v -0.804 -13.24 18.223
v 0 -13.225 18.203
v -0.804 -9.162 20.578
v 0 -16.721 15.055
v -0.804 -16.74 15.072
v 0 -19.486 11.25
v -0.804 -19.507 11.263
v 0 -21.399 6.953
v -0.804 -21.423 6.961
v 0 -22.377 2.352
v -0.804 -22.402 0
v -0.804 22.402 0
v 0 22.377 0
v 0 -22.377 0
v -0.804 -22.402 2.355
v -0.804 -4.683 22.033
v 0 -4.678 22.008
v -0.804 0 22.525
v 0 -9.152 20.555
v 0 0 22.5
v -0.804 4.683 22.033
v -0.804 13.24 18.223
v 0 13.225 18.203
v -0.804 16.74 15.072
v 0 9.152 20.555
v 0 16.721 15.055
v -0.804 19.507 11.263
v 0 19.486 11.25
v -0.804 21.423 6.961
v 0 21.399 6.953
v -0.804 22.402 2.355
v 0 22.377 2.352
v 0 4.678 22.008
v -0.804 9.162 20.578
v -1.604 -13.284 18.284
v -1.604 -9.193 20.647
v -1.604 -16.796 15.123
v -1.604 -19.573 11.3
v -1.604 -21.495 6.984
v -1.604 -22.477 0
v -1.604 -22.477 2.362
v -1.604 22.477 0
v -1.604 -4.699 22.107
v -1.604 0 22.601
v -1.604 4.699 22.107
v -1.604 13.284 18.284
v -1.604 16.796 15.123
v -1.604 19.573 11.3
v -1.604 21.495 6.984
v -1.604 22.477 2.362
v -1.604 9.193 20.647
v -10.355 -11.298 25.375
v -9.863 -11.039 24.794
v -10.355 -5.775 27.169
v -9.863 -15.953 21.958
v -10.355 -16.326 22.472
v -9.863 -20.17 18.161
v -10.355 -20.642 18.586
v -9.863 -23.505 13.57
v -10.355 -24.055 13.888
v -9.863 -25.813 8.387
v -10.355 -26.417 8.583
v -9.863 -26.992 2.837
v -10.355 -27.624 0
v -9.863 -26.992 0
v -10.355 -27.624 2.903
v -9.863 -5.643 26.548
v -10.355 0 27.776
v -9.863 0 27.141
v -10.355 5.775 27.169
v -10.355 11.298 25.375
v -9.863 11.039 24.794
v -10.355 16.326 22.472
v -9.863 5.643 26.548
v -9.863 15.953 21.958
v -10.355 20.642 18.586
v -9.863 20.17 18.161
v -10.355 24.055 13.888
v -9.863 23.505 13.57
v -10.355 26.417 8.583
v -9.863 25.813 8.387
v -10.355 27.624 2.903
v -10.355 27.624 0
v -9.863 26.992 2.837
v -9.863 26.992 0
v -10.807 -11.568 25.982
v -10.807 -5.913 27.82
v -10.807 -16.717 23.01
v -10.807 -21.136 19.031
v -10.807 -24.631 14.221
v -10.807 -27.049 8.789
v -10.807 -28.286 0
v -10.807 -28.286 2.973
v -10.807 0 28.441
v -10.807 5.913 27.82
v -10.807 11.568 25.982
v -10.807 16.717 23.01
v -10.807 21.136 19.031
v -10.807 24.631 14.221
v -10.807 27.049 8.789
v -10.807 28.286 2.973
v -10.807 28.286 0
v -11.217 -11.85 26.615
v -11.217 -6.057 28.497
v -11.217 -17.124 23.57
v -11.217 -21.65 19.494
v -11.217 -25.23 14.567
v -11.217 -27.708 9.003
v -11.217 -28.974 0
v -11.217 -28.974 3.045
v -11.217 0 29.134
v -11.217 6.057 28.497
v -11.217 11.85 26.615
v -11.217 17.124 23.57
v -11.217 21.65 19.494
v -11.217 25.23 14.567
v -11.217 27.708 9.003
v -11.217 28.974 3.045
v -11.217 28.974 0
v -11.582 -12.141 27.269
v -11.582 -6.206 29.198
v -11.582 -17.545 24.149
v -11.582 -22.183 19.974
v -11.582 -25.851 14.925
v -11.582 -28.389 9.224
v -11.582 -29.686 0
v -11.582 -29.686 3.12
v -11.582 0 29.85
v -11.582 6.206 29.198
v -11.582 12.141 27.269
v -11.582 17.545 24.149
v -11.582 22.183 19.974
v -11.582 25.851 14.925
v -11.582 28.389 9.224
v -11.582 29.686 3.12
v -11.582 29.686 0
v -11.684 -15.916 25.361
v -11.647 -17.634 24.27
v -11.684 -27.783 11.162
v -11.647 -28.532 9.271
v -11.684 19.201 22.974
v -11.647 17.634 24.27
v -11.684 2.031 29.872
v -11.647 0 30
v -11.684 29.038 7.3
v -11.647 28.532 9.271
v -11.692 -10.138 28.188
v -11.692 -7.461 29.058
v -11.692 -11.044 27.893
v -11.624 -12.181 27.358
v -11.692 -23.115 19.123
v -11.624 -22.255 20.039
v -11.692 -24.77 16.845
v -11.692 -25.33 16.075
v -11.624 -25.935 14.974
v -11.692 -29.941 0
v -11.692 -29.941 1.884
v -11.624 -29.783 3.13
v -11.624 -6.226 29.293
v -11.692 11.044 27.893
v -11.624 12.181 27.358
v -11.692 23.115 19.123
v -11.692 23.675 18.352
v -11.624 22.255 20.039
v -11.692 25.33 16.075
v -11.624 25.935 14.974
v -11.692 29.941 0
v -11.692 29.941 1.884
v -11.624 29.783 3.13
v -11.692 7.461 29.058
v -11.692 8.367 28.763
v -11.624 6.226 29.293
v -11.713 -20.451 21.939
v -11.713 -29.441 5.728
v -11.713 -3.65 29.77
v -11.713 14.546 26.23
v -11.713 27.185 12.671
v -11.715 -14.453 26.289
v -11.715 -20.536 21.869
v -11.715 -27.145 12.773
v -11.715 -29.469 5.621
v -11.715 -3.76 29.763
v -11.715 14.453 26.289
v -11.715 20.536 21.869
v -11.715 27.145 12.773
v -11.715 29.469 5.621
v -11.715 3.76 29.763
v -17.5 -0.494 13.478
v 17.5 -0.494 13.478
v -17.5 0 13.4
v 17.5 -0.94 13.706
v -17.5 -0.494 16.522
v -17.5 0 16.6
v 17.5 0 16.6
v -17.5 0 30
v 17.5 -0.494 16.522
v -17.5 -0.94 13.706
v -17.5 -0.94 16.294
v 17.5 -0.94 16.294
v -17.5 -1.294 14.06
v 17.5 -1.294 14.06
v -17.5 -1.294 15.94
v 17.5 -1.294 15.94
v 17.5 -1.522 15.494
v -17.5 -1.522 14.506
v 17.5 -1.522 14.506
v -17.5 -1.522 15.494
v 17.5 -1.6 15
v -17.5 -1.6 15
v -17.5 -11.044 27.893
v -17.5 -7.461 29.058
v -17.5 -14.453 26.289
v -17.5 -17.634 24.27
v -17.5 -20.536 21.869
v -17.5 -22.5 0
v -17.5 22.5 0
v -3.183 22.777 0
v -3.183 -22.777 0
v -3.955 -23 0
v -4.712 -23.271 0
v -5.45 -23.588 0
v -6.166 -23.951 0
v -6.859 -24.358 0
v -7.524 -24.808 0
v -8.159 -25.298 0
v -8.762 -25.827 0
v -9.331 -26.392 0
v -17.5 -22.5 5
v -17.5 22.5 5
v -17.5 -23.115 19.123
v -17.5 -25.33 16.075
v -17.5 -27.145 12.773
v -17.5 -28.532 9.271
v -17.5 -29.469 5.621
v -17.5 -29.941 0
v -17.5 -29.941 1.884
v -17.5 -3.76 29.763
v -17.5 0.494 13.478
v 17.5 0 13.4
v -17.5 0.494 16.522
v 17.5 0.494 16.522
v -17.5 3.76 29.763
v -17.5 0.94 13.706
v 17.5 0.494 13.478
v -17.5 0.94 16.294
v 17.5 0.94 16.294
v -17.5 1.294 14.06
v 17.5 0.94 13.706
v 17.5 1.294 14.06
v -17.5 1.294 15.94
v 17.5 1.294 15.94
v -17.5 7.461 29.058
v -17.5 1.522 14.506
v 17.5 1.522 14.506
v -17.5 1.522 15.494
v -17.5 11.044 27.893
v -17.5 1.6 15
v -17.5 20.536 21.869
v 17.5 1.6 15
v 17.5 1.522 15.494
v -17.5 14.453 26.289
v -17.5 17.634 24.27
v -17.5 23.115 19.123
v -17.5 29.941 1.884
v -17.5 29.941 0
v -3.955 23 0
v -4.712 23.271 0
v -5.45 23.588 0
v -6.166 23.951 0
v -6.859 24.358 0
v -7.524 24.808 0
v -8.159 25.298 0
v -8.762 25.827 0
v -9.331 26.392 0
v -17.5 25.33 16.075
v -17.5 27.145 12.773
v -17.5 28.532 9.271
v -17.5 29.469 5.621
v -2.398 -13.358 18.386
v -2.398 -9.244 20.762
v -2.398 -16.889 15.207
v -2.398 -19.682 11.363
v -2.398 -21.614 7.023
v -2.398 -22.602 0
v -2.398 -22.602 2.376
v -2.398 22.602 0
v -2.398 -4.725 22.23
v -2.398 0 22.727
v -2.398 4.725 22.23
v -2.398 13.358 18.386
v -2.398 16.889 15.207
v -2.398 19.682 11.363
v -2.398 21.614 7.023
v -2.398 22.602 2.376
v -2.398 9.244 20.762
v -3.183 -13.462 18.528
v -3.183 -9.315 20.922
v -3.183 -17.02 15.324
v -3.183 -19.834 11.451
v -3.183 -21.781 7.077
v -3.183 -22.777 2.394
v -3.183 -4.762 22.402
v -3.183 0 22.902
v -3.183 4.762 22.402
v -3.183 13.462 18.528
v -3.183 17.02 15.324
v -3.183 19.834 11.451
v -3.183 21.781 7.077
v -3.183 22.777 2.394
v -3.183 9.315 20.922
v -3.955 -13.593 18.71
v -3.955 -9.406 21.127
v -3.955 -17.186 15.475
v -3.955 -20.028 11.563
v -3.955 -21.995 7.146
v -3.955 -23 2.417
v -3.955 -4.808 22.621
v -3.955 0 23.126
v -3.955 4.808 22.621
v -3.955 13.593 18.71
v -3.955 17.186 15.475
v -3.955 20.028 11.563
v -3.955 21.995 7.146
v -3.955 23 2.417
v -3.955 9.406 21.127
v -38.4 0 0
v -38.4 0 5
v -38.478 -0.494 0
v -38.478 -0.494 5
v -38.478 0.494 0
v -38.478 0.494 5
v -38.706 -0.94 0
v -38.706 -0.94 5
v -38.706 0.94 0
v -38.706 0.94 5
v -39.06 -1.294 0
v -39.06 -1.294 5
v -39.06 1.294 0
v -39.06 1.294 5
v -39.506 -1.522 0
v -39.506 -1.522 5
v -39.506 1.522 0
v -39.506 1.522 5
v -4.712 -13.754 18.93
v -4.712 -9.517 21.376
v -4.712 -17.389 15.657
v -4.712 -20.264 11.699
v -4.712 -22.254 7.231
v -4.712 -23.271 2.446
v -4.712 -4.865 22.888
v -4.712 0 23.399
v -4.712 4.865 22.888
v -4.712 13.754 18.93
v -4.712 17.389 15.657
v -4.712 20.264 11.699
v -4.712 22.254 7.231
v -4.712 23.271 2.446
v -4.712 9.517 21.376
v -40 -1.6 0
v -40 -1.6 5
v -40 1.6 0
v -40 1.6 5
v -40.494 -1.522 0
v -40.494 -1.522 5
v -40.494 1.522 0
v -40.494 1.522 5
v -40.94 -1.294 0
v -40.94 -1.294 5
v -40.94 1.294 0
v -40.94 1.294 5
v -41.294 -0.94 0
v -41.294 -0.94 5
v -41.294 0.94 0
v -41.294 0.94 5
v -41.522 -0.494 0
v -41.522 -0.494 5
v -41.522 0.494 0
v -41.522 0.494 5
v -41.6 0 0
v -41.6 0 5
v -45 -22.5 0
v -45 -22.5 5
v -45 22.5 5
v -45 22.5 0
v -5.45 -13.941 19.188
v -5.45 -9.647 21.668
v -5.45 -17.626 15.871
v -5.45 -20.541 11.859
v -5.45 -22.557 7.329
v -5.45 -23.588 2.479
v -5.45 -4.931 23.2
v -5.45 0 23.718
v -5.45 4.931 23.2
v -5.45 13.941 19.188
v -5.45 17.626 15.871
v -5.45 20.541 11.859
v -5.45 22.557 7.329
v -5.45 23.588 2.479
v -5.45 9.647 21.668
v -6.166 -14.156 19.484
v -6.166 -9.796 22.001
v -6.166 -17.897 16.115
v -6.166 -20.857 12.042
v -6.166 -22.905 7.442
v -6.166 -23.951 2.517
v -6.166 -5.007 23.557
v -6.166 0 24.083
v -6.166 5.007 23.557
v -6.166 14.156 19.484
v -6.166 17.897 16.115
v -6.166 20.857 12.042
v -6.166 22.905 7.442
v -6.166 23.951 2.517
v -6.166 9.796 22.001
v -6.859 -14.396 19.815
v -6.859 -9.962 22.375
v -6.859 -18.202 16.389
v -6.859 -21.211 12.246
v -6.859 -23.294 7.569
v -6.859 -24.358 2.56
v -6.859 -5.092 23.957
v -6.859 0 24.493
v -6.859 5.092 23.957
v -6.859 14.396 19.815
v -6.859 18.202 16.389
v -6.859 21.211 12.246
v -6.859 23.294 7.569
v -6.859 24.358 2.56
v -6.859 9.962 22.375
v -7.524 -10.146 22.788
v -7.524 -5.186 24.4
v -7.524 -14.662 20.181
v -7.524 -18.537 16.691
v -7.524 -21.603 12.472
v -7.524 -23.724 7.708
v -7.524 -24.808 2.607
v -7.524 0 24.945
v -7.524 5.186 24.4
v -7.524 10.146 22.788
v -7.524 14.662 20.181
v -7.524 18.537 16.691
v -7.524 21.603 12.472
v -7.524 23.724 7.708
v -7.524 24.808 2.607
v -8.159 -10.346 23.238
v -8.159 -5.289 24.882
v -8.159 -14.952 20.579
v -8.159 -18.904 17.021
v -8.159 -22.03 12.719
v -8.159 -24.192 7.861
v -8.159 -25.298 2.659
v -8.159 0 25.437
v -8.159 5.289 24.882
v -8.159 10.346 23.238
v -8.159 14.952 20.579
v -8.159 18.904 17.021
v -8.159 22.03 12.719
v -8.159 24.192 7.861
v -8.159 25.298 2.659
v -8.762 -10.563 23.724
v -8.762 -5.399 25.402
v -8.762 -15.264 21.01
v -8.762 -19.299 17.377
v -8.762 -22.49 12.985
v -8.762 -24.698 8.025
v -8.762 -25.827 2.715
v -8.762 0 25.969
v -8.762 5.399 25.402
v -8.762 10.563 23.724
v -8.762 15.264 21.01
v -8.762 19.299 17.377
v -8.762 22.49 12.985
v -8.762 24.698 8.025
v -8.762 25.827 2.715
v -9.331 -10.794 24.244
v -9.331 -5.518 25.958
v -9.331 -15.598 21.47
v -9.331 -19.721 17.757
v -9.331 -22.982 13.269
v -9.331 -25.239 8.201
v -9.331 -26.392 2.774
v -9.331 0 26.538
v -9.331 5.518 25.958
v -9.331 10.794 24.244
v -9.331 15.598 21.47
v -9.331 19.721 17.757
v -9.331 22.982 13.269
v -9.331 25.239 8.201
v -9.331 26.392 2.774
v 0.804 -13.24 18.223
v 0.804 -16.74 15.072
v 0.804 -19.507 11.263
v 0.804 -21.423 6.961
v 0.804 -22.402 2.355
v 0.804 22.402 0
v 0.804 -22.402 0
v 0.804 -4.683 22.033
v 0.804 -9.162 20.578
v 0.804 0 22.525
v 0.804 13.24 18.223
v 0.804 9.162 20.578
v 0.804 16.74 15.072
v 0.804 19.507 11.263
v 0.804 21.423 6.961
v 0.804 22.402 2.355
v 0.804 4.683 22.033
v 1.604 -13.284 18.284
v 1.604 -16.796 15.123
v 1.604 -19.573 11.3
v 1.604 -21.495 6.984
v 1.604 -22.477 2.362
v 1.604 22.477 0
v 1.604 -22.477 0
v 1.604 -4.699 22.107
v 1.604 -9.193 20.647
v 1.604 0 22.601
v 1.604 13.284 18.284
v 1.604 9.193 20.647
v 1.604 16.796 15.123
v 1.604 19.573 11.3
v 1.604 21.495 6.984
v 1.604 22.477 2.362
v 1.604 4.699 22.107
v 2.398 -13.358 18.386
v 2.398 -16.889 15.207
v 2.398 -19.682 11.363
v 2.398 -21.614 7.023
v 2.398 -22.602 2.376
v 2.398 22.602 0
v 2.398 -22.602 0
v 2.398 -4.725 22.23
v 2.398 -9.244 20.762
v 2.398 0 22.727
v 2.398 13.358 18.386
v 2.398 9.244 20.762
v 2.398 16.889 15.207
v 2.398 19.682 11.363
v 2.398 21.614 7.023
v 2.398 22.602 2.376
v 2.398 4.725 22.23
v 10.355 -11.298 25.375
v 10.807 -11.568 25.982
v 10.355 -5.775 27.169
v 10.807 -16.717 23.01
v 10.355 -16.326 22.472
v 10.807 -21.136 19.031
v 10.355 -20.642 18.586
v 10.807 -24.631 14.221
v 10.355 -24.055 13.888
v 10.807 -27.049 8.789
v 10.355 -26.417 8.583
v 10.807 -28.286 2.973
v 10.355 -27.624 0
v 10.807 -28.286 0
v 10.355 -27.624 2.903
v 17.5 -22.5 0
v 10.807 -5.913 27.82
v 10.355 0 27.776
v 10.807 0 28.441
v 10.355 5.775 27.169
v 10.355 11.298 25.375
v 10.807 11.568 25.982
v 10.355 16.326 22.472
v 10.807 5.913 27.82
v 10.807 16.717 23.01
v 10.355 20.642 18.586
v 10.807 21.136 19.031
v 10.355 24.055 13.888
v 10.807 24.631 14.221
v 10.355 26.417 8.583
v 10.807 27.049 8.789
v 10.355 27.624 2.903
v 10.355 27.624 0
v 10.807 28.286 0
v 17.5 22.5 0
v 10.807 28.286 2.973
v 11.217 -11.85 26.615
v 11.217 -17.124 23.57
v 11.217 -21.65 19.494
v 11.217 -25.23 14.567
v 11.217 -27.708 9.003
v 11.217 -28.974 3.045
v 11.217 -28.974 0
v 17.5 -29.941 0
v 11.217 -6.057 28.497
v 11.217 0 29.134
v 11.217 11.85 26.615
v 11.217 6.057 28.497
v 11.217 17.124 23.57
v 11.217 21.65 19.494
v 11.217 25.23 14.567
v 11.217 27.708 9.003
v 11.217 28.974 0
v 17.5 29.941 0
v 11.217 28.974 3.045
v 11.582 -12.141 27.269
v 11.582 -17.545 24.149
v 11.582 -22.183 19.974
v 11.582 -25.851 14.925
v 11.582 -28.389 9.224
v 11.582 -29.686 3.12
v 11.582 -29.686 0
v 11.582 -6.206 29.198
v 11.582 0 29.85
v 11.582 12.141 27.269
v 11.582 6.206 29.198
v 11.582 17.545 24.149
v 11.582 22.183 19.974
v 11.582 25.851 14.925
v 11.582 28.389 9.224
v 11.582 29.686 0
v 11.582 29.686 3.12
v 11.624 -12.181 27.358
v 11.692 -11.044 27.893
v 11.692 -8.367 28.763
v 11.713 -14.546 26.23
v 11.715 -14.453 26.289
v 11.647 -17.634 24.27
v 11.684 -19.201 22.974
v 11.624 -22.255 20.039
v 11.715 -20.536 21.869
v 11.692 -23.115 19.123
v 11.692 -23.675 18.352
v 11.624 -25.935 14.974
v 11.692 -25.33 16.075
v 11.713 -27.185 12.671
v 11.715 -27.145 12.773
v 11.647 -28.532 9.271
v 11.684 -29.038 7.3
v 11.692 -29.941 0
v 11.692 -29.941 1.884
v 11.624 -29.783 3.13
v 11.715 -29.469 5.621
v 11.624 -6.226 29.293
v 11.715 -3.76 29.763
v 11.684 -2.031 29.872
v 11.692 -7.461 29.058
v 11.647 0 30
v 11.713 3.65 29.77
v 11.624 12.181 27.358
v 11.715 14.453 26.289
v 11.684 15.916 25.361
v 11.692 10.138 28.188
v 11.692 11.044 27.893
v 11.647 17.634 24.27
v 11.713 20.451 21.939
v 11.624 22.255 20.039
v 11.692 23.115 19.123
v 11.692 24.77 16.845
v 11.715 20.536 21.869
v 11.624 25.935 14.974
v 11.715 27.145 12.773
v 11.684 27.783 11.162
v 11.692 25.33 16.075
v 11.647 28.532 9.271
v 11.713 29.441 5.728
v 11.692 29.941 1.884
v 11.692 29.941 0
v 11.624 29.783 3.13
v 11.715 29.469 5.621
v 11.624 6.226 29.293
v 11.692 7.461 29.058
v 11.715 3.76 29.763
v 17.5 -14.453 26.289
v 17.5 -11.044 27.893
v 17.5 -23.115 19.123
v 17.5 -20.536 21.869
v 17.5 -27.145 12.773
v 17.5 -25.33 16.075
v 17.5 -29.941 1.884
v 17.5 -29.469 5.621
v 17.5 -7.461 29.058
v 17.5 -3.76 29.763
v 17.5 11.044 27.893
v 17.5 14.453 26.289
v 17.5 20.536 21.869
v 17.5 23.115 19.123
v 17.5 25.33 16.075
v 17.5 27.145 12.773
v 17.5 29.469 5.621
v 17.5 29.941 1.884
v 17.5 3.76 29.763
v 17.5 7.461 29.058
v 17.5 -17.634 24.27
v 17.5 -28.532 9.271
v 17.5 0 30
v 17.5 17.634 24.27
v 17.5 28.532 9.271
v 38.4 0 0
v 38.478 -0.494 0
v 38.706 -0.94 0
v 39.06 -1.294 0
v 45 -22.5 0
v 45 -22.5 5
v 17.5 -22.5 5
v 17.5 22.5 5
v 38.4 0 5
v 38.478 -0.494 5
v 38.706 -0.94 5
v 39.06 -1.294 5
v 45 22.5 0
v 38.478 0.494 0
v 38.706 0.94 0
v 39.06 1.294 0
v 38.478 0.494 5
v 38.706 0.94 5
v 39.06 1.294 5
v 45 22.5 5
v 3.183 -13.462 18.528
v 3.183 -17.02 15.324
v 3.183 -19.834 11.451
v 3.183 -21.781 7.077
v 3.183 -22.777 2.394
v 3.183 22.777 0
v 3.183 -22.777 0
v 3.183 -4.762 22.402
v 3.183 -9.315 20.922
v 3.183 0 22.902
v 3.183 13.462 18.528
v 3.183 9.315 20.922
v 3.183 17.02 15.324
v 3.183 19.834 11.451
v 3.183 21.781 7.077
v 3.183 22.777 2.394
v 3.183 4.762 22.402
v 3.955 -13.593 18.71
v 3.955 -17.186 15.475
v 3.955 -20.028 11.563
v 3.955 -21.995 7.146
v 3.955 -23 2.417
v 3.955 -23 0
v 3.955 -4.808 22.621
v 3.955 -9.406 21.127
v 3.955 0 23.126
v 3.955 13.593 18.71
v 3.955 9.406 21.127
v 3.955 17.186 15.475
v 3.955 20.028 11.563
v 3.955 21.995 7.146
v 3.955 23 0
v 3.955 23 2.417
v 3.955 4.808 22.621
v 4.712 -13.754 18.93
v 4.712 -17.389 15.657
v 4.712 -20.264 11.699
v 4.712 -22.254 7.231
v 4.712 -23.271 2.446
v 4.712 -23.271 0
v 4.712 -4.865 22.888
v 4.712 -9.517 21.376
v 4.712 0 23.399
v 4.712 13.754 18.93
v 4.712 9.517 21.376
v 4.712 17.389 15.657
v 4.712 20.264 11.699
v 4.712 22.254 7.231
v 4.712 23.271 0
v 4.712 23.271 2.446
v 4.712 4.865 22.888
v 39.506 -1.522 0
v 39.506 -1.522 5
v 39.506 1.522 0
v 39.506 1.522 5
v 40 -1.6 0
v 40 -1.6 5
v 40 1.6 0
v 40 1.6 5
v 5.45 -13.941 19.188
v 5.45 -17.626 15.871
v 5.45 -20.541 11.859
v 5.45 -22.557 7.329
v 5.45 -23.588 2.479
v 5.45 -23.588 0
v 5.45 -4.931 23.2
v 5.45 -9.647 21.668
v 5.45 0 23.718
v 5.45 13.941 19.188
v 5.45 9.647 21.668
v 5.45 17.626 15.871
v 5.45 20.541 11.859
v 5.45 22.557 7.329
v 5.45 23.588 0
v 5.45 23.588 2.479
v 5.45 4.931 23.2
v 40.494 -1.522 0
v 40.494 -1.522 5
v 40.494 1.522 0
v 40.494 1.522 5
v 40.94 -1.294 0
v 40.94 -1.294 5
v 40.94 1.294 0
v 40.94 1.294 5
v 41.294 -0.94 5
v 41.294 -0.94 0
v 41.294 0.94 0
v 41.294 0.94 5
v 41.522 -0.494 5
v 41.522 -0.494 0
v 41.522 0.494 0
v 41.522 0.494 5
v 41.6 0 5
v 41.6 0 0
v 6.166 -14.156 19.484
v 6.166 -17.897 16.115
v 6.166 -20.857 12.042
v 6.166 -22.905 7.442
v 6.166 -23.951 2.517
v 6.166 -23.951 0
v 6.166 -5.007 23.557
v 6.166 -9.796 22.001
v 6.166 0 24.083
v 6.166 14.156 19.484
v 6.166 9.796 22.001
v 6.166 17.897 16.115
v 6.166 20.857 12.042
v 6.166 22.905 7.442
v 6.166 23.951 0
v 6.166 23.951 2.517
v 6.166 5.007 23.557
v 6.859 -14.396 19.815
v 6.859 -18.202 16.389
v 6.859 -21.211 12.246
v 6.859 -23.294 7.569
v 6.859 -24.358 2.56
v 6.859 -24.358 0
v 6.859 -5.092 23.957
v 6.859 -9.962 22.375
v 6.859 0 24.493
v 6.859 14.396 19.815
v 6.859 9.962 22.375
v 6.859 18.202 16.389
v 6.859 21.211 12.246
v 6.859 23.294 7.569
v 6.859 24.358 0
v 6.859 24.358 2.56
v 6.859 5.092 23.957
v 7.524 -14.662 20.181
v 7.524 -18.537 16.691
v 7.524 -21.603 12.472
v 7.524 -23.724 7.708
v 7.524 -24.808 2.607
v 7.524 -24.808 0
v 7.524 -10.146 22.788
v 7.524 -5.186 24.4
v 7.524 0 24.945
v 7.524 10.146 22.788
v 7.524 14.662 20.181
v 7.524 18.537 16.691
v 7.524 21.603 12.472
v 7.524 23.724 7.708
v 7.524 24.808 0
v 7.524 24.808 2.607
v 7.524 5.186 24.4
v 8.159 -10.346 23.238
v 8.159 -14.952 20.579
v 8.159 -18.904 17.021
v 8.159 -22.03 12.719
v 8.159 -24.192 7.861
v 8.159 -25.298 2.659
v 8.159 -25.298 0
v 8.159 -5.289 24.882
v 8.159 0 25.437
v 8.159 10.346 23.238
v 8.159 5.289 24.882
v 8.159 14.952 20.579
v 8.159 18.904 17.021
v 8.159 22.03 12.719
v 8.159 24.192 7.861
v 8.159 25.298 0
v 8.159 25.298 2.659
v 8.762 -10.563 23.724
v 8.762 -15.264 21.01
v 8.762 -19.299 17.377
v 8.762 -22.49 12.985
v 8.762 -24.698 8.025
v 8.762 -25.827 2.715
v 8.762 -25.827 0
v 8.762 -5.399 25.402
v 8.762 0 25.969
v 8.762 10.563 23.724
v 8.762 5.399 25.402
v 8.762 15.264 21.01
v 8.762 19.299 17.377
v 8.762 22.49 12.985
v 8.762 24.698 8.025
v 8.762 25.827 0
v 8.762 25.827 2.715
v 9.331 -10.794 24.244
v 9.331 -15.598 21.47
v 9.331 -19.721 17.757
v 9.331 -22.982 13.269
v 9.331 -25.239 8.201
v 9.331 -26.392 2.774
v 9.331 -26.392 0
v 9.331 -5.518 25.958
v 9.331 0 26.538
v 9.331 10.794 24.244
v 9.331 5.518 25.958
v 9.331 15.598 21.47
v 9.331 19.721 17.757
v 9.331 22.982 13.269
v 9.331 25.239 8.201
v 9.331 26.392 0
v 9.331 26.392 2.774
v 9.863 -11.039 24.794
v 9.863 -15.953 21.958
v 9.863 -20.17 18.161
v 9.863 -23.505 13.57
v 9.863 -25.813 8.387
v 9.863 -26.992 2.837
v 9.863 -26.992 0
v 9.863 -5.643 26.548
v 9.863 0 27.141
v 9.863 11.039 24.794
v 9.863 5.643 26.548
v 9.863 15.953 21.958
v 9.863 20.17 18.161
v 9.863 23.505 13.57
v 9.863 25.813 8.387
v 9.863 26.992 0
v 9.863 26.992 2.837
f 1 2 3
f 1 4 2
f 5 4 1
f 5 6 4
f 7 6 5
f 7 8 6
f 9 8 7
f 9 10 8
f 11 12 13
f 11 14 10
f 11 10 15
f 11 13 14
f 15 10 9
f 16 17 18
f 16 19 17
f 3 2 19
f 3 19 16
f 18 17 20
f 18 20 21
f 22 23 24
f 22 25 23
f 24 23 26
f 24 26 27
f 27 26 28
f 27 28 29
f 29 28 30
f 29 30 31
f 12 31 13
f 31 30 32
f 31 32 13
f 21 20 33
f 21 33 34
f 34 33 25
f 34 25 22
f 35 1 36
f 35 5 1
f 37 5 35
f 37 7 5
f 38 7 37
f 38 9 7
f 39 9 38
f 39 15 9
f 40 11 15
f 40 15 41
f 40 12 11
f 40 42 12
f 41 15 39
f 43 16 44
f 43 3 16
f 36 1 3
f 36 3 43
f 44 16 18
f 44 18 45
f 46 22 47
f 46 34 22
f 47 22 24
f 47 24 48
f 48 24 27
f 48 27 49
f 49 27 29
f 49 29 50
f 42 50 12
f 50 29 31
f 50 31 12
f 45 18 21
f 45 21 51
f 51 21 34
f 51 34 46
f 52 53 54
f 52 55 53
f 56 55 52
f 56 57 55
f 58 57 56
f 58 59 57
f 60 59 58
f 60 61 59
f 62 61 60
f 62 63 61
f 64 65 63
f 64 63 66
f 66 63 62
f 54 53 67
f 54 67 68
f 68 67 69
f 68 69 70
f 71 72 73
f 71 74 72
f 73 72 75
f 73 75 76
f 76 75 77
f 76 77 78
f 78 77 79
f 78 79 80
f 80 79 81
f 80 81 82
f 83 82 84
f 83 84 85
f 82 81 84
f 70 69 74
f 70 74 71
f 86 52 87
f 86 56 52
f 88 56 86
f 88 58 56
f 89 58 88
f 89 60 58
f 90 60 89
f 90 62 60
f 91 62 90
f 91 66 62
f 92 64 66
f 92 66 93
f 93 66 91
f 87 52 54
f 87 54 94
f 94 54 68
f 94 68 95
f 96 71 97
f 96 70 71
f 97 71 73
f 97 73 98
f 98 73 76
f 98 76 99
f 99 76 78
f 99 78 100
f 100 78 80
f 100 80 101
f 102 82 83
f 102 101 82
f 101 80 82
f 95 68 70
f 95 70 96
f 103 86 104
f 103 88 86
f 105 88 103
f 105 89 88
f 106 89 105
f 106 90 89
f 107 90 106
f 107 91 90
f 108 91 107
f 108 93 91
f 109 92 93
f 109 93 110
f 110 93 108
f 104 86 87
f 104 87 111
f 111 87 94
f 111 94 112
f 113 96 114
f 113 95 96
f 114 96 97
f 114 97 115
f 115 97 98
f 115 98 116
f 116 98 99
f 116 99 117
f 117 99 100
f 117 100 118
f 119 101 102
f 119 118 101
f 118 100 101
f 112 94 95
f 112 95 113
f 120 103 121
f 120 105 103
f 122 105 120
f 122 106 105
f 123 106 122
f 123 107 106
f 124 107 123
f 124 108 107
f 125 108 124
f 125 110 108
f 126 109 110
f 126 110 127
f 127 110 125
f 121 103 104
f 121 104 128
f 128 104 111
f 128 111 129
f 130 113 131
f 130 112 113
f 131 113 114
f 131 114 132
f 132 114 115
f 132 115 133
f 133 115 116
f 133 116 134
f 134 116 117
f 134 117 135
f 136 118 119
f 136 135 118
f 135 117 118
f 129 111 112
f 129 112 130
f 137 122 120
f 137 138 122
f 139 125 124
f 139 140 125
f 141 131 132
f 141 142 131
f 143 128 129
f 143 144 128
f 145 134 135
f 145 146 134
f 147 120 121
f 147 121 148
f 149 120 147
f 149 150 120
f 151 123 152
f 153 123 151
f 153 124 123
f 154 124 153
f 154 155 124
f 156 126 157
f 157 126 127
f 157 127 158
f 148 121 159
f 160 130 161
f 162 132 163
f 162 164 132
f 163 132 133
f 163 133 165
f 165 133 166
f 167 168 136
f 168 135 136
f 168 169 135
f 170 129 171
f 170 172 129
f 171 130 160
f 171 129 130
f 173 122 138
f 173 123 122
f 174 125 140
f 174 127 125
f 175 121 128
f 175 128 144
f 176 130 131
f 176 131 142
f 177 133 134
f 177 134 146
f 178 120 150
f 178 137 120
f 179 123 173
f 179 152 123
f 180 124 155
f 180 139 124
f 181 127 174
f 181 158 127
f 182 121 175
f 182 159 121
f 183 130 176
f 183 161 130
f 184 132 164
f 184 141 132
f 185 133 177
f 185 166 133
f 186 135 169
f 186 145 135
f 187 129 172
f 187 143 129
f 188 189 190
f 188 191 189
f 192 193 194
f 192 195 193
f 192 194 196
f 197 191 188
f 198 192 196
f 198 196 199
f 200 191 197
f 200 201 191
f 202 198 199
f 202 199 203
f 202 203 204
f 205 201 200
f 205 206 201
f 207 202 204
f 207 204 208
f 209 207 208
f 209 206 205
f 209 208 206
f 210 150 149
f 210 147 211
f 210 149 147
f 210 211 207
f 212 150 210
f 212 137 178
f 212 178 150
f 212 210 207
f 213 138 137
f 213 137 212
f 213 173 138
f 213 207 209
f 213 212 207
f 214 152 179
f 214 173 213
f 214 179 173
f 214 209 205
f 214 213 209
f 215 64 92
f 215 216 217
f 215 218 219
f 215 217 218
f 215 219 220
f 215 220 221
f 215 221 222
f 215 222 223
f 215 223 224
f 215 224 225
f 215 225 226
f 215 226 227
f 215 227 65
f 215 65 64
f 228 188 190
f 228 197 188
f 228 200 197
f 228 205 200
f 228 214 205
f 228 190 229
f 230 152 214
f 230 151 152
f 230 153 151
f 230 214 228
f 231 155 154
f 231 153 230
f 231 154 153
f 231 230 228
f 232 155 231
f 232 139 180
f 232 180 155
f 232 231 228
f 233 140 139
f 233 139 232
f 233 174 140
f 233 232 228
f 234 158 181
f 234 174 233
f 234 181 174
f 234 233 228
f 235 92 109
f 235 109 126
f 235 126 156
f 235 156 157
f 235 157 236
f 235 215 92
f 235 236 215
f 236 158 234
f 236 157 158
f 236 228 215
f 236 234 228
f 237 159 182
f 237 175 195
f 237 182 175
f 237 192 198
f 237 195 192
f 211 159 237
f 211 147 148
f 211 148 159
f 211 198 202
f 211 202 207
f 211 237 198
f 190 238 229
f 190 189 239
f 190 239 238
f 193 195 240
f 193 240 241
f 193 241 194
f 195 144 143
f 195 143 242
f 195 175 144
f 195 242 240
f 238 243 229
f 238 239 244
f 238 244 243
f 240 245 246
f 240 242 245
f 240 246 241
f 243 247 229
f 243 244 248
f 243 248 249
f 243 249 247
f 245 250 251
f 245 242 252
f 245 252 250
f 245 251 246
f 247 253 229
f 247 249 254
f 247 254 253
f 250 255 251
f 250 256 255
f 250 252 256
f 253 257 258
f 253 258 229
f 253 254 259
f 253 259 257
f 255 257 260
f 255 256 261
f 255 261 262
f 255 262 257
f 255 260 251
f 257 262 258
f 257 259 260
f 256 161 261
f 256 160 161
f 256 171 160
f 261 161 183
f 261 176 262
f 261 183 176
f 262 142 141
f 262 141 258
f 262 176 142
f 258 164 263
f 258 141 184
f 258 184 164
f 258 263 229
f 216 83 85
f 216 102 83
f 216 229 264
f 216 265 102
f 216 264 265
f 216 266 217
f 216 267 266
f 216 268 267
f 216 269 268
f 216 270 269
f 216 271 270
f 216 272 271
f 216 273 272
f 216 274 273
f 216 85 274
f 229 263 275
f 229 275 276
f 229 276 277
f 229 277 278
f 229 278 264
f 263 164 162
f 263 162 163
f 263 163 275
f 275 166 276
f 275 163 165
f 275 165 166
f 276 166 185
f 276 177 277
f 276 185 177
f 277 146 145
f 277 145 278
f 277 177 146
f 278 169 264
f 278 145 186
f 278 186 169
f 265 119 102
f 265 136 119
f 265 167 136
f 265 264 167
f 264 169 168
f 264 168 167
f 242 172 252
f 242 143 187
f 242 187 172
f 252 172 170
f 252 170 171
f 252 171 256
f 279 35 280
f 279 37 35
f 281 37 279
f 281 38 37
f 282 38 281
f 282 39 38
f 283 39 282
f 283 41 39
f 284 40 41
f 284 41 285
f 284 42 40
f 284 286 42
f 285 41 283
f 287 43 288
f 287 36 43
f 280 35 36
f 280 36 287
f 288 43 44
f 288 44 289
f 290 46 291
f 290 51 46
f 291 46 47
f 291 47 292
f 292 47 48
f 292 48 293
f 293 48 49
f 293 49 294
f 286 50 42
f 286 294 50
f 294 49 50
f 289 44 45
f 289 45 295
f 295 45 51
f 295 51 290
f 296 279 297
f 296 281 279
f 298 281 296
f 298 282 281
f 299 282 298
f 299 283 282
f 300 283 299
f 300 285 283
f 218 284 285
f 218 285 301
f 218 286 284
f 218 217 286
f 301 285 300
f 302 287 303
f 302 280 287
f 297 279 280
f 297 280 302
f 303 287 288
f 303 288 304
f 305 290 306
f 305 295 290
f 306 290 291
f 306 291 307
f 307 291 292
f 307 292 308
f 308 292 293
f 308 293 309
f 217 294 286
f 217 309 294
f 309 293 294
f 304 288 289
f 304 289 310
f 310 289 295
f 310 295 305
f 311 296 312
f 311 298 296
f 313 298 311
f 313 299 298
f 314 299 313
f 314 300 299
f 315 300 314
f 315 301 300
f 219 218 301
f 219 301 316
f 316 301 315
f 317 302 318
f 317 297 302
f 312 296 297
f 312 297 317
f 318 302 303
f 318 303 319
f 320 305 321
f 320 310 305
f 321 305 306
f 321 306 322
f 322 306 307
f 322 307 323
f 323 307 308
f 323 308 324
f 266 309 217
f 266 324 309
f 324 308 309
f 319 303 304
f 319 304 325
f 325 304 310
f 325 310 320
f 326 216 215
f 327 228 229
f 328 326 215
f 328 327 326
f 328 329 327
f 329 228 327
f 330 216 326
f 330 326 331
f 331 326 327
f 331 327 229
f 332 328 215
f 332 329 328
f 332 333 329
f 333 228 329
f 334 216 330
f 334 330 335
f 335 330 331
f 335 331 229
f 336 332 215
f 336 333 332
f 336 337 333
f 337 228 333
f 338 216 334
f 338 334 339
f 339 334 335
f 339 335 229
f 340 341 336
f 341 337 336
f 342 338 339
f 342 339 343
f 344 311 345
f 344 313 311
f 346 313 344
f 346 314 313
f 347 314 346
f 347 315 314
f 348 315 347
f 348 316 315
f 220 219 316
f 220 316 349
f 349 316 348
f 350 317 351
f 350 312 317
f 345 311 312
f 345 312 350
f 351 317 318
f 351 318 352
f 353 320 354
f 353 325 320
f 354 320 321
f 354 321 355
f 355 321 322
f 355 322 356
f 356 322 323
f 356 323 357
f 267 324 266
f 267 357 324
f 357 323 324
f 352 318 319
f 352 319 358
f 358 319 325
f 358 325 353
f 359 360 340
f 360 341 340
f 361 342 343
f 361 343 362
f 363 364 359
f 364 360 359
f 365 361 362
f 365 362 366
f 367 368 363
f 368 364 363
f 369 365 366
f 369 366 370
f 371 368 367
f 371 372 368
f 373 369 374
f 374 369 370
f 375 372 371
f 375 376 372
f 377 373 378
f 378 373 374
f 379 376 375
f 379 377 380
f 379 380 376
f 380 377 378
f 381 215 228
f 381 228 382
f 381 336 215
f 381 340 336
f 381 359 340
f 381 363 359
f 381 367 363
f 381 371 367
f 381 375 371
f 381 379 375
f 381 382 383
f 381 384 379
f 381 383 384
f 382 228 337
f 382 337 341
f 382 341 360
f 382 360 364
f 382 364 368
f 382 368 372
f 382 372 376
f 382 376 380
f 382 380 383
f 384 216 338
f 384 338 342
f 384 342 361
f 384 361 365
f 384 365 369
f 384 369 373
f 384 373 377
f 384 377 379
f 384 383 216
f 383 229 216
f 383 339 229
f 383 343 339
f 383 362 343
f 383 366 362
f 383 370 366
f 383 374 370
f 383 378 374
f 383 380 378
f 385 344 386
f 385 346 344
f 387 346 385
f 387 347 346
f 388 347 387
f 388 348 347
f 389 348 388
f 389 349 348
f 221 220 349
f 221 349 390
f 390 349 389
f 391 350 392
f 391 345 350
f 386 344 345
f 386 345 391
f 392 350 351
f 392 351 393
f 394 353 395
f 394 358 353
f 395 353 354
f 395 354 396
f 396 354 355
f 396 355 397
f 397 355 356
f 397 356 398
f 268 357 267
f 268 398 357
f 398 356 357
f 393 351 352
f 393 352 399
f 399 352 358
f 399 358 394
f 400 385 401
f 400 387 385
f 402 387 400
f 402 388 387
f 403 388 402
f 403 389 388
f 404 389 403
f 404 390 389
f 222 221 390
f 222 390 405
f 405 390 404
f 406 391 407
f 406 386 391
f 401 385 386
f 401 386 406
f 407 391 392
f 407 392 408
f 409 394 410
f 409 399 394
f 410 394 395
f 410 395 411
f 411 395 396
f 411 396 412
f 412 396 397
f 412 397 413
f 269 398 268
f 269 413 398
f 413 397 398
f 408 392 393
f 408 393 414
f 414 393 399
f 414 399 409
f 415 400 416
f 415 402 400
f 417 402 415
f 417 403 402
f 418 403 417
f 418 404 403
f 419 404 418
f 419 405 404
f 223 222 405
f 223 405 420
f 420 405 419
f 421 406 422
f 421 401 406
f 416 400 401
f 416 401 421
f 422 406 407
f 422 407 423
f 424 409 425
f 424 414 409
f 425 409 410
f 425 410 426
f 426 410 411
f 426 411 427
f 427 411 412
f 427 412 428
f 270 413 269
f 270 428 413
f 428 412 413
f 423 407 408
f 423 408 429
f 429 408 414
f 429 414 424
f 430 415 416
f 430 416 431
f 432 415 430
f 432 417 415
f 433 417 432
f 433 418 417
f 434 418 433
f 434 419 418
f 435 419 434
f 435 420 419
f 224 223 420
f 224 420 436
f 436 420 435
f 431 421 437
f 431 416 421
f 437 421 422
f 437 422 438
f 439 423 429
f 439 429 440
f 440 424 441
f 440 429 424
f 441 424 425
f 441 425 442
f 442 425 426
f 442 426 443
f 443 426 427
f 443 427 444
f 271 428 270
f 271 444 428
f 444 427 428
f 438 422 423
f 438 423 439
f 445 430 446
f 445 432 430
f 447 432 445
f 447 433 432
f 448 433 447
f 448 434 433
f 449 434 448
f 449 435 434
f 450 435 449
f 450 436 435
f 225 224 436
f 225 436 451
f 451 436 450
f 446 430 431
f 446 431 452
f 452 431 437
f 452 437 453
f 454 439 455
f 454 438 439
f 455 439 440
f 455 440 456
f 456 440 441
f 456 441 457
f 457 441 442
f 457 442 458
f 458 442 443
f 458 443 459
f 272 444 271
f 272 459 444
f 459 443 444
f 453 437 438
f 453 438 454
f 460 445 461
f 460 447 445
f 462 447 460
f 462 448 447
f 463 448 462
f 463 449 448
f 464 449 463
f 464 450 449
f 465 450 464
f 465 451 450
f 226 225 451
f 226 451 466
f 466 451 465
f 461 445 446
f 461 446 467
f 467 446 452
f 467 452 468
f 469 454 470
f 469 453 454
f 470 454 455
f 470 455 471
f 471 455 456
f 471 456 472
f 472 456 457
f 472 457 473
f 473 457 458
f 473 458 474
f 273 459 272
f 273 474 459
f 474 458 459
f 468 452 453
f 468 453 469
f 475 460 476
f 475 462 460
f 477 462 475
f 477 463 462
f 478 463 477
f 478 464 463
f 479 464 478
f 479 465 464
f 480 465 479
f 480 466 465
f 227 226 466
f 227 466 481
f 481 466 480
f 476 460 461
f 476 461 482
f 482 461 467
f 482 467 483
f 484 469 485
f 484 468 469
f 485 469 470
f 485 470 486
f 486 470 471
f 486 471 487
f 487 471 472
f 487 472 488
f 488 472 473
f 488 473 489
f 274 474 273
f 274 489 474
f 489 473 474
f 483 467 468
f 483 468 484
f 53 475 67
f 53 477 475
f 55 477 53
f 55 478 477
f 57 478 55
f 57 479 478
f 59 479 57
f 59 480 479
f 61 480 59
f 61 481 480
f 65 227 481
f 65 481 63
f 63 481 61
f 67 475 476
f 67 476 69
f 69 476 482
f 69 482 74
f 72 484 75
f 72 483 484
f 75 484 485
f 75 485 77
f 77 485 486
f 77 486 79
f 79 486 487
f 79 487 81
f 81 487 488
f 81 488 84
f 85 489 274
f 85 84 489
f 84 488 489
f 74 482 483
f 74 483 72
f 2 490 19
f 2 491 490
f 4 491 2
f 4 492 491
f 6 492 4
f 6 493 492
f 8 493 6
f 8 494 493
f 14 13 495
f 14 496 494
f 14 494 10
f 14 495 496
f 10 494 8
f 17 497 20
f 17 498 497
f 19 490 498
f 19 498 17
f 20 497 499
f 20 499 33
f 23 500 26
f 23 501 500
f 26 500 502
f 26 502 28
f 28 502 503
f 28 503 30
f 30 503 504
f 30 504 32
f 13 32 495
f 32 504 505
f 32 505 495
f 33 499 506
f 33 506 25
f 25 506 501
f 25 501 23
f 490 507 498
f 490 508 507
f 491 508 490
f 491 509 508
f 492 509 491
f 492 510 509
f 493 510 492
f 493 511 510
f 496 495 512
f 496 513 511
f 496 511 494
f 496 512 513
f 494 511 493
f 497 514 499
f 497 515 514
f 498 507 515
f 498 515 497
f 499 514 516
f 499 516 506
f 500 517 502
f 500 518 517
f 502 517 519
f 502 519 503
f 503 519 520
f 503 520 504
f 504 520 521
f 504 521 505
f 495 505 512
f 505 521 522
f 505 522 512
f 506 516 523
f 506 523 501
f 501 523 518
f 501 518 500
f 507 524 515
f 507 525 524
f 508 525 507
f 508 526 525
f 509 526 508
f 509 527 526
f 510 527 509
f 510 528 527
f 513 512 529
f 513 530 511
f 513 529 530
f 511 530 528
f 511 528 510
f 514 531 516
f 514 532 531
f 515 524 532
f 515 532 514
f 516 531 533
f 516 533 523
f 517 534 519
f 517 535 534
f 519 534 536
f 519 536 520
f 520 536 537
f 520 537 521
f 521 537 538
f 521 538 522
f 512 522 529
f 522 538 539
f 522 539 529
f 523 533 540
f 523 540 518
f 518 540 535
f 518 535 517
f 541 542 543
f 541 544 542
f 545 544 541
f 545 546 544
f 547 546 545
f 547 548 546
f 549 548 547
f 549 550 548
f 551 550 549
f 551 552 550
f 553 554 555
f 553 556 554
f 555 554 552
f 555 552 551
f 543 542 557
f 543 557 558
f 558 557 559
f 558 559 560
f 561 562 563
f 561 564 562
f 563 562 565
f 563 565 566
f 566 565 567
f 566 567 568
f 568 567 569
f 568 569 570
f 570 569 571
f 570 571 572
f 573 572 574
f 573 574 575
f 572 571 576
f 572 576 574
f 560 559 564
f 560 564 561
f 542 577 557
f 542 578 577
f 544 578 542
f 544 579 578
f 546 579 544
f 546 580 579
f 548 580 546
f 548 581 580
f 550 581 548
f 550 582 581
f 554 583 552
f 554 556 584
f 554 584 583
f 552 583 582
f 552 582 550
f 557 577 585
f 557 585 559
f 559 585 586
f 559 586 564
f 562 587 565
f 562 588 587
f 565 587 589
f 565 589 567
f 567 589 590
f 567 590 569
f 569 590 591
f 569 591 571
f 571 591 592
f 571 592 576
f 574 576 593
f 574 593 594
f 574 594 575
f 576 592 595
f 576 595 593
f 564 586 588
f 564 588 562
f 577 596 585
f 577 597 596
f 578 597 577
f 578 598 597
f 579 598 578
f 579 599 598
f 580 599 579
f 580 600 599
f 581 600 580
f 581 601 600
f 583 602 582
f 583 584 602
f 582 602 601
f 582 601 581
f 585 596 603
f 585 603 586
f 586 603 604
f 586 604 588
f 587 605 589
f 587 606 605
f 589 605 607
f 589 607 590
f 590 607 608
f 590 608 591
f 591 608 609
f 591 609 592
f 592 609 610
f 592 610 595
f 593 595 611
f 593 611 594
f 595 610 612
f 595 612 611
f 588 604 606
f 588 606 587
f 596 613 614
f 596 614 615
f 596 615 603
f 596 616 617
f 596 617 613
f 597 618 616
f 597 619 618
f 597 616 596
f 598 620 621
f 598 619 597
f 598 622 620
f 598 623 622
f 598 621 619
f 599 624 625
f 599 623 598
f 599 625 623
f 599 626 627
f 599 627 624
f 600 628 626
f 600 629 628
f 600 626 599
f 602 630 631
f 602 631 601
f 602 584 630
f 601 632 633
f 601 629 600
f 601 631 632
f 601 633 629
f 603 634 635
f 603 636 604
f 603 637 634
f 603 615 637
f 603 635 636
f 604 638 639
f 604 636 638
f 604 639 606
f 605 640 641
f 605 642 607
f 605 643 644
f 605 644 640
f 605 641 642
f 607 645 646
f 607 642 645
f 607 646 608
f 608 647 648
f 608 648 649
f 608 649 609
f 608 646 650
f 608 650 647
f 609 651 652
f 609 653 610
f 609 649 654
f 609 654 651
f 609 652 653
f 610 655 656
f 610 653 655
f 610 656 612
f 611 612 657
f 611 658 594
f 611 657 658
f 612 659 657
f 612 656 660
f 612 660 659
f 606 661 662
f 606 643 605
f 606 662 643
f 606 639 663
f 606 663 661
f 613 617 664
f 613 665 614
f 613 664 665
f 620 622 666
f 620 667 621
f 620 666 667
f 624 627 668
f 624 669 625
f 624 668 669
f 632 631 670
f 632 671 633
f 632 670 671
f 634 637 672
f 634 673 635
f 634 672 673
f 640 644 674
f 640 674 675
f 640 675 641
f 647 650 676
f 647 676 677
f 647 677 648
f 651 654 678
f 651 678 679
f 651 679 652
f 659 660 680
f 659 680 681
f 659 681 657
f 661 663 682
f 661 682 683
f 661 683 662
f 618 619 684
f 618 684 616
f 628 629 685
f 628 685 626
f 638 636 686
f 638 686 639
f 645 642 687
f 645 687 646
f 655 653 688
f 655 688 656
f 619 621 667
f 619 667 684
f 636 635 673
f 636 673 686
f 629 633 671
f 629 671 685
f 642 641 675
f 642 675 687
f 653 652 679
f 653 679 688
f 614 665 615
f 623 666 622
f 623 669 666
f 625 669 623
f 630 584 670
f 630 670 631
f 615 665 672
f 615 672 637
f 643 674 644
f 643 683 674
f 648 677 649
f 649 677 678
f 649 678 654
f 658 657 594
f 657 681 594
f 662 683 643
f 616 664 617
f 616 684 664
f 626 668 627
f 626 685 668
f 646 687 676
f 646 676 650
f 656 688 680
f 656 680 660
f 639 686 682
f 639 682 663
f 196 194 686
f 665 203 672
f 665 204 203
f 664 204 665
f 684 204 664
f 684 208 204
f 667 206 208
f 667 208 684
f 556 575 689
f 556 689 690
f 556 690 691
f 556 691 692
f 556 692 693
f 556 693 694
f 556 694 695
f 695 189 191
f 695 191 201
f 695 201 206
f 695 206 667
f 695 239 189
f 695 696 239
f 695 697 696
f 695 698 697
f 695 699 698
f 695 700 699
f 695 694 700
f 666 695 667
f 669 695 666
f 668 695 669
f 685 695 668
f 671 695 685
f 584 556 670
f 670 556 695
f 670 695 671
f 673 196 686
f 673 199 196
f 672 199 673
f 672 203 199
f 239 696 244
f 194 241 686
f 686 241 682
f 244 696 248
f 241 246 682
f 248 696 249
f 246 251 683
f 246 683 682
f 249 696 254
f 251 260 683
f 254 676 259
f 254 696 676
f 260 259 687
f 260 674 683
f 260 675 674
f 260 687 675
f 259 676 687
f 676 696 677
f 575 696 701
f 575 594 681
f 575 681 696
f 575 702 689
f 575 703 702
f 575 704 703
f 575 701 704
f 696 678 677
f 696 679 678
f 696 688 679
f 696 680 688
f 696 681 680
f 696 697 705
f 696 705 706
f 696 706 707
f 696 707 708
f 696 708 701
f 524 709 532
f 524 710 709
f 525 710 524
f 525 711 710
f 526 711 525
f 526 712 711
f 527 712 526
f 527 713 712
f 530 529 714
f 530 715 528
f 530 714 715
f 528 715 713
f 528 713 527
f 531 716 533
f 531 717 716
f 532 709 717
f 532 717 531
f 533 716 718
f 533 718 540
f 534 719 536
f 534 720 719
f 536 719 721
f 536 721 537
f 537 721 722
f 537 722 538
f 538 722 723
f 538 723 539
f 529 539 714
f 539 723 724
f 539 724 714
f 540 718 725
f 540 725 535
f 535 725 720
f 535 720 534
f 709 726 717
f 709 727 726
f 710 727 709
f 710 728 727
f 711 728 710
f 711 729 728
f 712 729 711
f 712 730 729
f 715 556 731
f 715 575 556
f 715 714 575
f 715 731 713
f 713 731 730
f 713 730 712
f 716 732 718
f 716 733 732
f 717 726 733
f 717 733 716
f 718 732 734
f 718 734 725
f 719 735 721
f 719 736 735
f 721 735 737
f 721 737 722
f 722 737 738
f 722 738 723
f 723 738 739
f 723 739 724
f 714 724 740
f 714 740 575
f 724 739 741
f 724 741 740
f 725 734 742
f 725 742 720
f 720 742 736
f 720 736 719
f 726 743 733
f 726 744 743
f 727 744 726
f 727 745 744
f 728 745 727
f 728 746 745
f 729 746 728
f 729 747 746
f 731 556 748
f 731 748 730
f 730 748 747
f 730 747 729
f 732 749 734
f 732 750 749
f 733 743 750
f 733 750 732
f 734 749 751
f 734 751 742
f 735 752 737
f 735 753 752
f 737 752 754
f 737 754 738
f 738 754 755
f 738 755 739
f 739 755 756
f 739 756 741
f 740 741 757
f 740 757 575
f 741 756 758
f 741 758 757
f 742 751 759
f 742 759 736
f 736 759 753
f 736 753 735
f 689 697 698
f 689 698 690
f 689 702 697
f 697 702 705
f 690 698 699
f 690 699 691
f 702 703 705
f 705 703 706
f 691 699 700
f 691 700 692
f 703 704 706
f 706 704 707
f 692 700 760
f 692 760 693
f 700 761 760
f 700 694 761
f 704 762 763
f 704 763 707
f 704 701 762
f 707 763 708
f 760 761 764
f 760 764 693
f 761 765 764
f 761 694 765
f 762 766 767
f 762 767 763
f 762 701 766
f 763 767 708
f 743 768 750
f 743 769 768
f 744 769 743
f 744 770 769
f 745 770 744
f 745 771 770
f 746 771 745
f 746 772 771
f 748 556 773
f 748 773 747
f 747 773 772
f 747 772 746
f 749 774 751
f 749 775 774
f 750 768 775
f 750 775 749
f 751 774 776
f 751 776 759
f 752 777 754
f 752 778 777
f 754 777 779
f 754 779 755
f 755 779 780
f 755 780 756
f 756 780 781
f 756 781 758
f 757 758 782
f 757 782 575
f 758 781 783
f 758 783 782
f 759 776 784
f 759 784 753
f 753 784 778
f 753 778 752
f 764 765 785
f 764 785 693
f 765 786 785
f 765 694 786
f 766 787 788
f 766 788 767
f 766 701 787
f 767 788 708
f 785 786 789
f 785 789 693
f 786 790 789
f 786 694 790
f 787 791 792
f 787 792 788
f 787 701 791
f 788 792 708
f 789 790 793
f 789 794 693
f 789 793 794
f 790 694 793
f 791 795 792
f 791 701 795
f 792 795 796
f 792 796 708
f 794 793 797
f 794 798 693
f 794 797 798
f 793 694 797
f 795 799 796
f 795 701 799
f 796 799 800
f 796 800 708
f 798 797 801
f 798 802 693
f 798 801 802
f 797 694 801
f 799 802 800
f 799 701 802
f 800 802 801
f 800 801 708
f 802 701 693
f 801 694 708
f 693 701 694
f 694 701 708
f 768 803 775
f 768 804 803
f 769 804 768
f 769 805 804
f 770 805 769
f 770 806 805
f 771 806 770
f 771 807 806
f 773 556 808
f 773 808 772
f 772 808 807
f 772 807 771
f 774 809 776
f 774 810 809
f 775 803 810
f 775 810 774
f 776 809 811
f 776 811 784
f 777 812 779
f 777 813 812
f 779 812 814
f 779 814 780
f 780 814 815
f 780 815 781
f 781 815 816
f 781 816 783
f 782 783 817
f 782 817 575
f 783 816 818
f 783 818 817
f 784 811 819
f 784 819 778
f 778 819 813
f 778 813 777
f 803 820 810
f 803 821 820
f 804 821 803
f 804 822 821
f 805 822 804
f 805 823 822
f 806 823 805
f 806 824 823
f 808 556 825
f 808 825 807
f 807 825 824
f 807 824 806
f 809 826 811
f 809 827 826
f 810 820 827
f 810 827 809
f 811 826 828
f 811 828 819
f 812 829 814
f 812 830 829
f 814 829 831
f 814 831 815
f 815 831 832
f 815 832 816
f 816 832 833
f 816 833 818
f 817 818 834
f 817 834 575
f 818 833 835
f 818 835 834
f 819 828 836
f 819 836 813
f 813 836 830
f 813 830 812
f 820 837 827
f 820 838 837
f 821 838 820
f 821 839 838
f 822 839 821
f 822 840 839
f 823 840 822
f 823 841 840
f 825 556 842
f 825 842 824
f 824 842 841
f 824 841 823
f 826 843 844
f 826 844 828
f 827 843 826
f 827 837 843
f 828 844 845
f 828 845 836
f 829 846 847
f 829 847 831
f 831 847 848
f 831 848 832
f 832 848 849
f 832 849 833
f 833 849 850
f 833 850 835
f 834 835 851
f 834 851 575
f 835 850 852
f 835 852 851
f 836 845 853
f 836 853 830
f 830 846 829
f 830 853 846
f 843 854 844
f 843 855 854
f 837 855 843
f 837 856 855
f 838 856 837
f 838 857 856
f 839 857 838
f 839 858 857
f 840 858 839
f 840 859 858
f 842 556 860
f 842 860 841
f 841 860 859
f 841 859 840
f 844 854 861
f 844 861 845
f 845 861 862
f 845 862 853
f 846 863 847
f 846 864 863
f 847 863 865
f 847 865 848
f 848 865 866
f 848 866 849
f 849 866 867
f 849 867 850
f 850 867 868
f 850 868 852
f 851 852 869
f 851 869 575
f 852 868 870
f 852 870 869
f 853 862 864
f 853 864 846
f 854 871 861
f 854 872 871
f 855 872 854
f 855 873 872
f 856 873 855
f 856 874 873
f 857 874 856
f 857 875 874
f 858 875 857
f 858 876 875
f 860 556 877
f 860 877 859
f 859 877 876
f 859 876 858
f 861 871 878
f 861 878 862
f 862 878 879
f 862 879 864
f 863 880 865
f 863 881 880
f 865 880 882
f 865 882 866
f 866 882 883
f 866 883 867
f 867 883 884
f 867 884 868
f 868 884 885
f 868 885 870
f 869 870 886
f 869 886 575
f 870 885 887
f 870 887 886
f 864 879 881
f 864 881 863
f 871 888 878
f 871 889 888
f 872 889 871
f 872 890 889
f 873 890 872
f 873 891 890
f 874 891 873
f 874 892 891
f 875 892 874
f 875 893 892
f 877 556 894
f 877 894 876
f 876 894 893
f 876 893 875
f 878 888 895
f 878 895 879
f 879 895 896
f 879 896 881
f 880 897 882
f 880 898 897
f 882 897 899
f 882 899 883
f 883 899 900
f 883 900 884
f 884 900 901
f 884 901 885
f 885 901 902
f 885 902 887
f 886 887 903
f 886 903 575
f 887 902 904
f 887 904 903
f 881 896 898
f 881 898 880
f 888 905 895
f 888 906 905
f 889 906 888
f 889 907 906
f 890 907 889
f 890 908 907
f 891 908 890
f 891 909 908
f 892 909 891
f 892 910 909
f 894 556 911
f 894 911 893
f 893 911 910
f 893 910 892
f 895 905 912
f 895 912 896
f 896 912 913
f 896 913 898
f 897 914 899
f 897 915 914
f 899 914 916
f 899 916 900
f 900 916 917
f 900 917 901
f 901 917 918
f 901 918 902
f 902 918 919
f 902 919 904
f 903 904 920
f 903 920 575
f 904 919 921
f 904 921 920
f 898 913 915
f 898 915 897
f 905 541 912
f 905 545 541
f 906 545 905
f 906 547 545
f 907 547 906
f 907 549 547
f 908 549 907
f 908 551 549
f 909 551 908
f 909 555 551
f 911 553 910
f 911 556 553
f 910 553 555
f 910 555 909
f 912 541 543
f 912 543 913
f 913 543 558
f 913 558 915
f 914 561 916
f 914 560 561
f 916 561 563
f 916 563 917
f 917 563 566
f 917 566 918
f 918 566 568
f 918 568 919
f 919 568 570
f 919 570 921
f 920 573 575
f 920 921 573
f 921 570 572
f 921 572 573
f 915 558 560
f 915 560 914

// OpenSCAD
// file: ../888_3015.scad
module 888_3015_A (draft = true){



width = 90;
depth = 45;
height = 10;
kloub_height = height*2.5;
tube_height = 50;
slit_width = 10;

height_cylinder = 35;


	difference (){

		union (){
			translate([-width/2,-depth/2,0])
				cube([width, depth, height/2]);

			translate([-height_cylinder/2,0,0])
				rotate([0,90,0])
					cylinder (h = height_cylinder, r = 30, $fn = 50);
		}

		translate([0,0,0])
			rotate([0,90,0])
				rotate_extrude(convexity = 10)
					translate([depth/2 + (main_tube_outer_diameter + 0.2)/2, 0, 0])
						circle(d = main_tube_outer_diameter + 0.2, $fn = 100);

		translate([-75,-75,-150])
				cube([150,150,150]);

		translate([-25,0,30/2])
			rotate([0,90,0])
				cylinder(h=50, r = M3_screw_diameter/2, $fn = 20);


		translate([-width/2 + 5, 0 ,-height/2-global_clearance/2])
			cylinder (h = height + global_clearance, r = M3_screw_diameter/2, $fn = 20);
		
		translate([width/2 - 5, 0 , - height/2 - global_clearance/2])
				cylinder (h = height + global_clearance, r = M3_screw_diameter/2, $fn = 20);
	}
}


module 888_3015_B(draft = true) {

width = 90;
depth = main_tube_outer_diameter - 4;
height = 10;
kloub_height = height*2.5;
tube_height = 50;
slit_width = 10;

height_cylinder = 35;

	difference(){
		translate([-height_cylinder/2 - 10,-15,+height*0.75])
			cube([height_cylinder+20,30,50]);

		translate([- height_cylinder/2 - global_clearance,-25,-global_clearance])
			cube([height_cylinder + global_clearance*2, 50, 35]);

		translate([-50,0,30/2])
			rotate([0,90,0])
				cylinder(h= 100, r = M3_screw_diameter/2, $fn = 20);

/*		%translate([height_cylinder -10 - M3_nut_height,0,30/2])
		    rotate([0, 90,0])
		       cylinder (h= M3_nut_height + global_clearance + 10, r = M3_nut_diameter/2, $fn = 20);
		    			
		%translate([-height_cylinder - M3_nut_height,0,30/2])
		    rotate([0, 90,0])
		        cylinder (h= M3_nut_height + global_clearance + 10, r = M3_nut_diameter/2, $fn = 20);
*/
		translate([0,50,35])
		    rotate([90,0,0])
				cylinder(h = 100, d = main_tube_outer_diameter + global_clearance,  $fn = 50);
	}
}

888_3015_A();

888_3015_B();


 include <../parameters.scad>
// main file
include <../../parameters.scad>
use <../888_3015.scad>

draft = false;
888_3015_A(draft);
